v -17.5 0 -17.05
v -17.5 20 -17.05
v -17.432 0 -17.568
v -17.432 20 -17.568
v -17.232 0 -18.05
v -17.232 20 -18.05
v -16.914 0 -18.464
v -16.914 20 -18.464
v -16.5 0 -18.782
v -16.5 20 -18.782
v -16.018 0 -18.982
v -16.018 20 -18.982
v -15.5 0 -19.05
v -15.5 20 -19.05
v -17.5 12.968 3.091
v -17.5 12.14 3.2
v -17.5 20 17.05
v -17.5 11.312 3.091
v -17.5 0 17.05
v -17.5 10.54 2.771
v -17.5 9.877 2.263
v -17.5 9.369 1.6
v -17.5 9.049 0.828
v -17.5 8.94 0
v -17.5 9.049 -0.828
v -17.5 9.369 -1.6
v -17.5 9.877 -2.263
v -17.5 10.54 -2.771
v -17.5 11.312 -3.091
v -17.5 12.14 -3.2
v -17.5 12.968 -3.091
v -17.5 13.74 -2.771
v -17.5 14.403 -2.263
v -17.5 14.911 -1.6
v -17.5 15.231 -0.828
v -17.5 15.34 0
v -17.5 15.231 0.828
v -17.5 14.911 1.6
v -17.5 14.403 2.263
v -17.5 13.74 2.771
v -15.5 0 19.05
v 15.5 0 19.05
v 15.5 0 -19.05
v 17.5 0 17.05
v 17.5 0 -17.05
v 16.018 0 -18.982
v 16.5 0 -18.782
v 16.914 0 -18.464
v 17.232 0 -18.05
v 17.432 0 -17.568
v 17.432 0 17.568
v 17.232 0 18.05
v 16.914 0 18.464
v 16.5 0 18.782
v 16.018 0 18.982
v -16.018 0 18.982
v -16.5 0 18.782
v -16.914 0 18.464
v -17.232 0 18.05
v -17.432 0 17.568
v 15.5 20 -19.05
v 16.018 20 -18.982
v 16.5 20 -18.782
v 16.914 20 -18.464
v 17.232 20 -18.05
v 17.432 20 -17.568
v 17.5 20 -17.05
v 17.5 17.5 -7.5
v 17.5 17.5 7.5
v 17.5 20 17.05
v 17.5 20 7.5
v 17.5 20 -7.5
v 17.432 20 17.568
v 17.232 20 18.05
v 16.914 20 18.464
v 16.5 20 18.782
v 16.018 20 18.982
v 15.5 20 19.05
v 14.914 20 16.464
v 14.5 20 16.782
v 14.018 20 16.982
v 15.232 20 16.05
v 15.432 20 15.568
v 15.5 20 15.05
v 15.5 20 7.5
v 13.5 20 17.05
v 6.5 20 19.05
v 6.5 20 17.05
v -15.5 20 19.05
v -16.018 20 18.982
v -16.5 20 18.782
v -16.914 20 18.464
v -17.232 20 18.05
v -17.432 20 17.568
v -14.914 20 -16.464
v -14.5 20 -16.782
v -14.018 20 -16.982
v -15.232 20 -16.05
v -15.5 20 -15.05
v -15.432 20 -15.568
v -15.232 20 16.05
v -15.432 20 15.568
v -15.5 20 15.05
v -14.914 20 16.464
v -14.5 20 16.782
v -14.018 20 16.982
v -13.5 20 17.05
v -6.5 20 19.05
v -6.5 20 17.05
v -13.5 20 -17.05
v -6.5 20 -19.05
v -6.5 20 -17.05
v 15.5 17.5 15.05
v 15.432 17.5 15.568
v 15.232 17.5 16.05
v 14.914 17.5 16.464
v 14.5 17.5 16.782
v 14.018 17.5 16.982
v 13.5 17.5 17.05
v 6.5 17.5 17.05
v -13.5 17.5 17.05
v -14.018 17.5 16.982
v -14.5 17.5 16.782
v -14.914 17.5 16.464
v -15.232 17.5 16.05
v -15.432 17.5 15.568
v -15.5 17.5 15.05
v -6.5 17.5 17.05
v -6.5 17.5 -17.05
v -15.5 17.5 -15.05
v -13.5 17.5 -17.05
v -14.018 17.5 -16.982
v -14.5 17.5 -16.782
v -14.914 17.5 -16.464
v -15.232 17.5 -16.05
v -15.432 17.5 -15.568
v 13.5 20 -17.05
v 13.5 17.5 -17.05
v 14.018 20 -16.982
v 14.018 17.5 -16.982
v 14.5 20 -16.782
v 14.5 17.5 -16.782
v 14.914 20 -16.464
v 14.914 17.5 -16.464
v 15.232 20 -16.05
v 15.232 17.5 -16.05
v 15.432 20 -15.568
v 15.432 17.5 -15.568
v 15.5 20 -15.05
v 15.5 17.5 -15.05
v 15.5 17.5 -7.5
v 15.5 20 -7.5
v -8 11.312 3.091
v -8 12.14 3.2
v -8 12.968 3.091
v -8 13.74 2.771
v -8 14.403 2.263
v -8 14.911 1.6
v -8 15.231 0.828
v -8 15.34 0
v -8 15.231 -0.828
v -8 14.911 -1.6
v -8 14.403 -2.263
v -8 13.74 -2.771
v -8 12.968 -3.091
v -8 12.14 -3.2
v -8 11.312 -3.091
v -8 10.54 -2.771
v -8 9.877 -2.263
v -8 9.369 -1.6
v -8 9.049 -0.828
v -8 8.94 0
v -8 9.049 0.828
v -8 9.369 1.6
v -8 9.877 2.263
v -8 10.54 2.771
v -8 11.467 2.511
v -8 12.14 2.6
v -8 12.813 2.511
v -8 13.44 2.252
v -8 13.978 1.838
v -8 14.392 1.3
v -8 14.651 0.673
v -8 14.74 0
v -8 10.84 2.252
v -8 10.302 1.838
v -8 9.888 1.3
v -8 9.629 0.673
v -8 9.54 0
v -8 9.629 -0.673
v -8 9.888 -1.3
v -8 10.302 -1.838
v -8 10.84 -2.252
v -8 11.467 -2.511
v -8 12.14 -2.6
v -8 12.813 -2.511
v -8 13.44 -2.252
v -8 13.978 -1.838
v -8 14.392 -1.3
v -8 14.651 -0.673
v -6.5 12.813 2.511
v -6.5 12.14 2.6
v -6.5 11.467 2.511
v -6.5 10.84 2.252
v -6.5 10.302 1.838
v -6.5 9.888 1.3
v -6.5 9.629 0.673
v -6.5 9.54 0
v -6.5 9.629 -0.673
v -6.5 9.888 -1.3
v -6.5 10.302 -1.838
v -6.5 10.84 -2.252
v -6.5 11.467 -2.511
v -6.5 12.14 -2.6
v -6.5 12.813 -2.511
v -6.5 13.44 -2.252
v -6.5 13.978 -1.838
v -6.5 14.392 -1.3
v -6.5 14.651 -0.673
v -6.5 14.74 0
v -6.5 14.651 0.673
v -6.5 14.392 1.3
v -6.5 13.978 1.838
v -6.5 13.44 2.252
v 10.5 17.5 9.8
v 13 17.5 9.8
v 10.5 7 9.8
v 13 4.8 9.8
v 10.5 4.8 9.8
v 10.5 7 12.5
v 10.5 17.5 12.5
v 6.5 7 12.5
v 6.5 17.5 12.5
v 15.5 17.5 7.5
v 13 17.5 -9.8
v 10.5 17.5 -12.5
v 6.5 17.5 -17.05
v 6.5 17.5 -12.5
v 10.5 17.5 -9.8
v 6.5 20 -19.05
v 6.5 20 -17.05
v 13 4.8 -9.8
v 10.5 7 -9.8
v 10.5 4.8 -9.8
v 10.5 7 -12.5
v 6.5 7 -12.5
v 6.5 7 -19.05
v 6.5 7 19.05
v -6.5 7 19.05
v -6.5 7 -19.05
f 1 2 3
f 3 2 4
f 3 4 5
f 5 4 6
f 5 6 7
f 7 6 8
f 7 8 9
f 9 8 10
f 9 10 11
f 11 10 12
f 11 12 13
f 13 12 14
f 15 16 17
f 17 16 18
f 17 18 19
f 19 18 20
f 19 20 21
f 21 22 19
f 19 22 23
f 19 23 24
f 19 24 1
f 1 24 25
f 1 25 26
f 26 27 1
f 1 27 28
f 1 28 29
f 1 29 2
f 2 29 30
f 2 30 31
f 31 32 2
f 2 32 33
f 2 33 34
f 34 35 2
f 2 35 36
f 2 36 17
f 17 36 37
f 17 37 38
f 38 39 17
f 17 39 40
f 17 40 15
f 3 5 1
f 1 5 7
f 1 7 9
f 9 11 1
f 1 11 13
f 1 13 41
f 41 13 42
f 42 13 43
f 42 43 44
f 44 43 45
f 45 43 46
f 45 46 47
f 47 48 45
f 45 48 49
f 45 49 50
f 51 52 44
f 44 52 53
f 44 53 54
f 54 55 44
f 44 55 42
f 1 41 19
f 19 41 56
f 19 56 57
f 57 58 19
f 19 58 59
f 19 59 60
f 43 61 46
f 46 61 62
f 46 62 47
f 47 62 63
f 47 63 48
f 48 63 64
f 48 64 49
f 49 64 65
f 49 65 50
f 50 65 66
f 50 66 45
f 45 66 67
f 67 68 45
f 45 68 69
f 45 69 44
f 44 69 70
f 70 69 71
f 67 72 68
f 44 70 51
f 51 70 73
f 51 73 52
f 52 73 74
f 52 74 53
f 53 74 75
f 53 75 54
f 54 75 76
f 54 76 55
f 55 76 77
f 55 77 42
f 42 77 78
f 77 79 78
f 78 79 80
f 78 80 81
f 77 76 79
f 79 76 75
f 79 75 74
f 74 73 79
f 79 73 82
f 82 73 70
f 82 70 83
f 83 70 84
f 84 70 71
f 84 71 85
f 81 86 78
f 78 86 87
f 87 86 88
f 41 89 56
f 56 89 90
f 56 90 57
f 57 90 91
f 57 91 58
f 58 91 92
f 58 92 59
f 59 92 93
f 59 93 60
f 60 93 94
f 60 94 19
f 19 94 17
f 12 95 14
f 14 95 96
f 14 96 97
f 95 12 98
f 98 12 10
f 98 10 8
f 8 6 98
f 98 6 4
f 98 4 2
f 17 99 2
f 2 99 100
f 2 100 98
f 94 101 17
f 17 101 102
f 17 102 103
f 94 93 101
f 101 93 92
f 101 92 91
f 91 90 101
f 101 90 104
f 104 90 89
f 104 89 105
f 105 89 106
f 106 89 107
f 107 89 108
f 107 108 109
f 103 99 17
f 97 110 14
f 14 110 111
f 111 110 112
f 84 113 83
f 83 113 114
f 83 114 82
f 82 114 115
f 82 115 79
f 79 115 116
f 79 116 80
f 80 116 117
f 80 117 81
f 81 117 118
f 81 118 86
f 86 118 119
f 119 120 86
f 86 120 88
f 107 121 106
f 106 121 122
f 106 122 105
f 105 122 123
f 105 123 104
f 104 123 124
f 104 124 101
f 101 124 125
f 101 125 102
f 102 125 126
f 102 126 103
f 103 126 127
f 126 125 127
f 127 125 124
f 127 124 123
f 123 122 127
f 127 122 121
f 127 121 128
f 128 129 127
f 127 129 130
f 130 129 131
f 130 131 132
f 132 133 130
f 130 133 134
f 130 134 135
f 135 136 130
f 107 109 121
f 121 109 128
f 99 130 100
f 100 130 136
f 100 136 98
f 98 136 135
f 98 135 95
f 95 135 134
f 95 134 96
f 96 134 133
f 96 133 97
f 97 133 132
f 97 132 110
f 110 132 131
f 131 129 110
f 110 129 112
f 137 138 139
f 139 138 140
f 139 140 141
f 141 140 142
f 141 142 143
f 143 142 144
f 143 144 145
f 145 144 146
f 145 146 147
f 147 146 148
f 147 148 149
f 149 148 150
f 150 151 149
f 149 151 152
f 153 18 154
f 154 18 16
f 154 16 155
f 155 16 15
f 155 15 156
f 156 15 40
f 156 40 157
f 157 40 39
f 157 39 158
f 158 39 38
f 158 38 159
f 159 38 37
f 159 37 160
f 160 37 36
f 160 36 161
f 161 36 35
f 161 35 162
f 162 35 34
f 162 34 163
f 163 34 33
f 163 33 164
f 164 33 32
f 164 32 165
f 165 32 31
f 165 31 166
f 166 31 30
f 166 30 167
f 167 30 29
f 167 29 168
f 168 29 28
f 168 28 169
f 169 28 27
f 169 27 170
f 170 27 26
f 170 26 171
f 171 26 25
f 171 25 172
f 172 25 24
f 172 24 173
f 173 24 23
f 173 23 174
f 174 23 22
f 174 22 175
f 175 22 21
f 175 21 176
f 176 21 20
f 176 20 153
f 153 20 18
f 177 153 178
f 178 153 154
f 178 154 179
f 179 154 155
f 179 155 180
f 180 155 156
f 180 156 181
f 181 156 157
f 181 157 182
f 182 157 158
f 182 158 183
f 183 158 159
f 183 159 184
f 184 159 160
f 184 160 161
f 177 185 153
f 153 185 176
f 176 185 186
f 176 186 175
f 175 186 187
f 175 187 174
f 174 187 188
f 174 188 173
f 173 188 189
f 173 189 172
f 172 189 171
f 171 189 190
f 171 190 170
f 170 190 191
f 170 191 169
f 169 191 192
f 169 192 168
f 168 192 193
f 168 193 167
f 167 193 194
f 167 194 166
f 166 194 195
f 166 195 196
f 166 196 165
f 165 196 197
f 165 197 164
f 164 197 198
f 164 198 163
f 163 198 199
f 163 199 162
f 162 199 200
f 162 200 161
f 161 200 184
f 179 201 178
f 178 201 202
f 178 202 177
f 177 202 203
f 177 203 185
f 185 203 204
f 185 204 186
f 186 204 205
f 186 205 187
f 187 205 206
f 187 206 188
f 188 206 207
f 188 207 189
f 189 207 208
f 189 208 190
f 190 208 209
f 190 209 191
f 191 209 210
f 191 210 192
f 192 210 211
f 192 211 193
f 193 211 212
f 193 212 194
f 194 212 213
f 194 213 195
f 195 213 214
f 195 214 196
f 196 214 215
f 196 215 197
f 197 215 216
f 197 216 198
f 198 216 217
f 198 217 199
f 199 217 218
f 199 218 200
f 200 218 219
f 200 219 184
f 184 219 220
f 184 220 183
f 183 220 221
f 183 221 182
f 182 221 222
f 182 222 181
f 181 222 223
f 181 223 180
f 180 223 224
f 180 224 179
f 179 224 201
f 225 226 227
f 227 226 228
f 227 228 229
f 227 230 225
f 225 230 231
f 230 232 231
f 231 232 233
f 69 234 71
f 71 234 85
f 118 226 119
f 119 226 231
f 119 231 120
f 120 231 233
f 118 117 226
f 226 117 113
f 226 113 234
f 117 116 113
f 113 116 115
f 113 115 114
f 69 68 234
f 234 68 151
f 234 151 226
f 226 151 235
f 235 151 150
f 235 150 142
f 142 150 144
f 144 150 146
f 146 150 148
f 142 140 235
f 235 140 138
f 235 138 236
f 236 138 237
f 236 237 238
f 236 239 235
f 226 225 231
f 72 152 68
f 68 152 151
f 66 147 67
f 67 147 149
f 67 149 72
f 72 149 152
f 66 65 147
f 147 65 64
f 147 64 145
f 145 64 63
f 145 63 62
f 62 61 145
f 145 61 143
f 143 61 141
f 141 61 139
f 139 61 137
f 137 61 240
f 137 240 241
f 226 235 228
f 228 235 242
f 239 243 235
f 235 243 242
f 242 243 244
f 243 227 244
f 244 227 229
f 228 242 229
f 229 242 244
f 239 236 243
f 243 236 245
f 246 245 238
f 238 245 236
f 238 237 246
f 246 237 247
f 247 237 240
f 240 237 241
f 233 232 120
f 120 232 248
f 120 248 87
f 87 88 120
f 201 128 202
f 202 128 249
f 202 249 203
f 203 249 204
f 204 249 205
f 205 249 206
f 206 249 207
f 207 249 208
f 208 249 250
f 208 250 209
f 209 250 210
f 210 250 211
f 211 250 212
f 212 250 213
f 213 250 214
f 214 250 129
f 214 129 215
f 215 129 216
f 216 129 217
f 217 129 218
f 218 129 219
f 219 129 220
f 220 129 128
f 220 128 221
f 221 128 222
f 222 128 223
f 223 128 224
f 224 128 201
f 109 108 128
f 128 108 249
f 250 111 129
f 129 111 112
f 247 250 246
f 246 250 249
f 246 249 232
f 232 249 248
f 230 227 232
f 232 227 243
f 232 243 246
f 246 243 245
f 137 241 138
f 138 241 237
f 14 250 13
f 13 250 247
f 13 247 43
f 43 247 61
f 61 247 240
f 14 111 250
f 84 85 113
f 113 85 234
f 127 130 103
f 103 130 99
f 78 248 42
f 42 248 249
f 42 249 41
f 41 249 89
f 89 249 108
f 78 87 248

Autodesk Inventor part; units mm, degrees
ref_plane "YZ Plane" through (0, 0, 0) normal (1, 0, 0) x (0, 1, 0)
sketch "Sketch1" plane through (0, 0, 0) normal (0, 1, 0) x (-1, 0, 0)
  line L0 (17.5, 19.05) -> (-17.5, 19.05)
  line L1 (-17.5, 19.05) -> (-17.5, -19.05)
  line L2 (-17.5, -19.05) -> (17.5, -19.05)
  line L3 (17.5, -19.05) -> (17.5, 19.05)
  line L4 (17.5, 19.05) -> (-17.5, -19.05) construction
  line L5 (-17.5, 19.05) -> (17.5, -19.05) construction
  point P0 (0, 0)
  dimension "d0" = 38.1
  dimension "d1" = 35
extrude "Extrusion1" add sketch "Sketch1" along normal blind 20
shell "Shell1" thickness 2 removed faces 1 at (5.8333, 20, -6.35)
sketch "Sketch2" plane through (-15.5, 2, 17.05) normal (0, 1, 0) x (1, 0, 0)
  line L0 (31, 34.1) -> (0, 34.1) projected
  line L1 (31, 0) -> (31, 34.1) projected
  line L2 (0, 34.1) -> (31, 34.1)
  line L3 (31, 34.1) -> (31, 0)
  line L4 (31, 0) -> (0, 0)
  line L5 (0, 0) -> (0, 34.1)
  point P0 (15.5, 17.05)
extrude "Extrusion2" add sketch "Sketch2" along normal blind 15.5
sketch "Sketch3" plane through (0, 20, 0) normal (0, 1, 0) x (1, 0, 0)
  line L0 (17.5, 19.05) -> (-17.5, 19.05) projected
  line L1 (-17.5, -19.05) -> (17.5, -19.05) projected
  line L2 (0, 19.05) -> (-6.5, 19.05)
  line L3 (-6.5, 19.05) -> (-6.5, -19.05)
  line L4 (-6.5, -19.05) -> (0, -19.05)
  line L5 (0, -19.05) -> (0, 19.05)
  point P0 (0, 0)
  dimension "d7" = 6.5
extrude "Extrusion3" cut sketch "Sketch3" against normal blind 13
ref_plane "Work Plane1" through (0, 20, -19.05) normal (-1, 0, 0) x (0, 0, 1)
mirror "Mirror1" about plane through (0, 20, -19.05) normal (-1, 0, 0) of "Extrusion3"
sketch "Sketch4" plane through (-15.5, 17.5, 17.05) normal (0, 1, 0) x (1, 0, 0)
  line L0 (22, -2) -> (22, 36.1) projected
  line L1 (22, 17.05) -> (26, 17.05)
  line L2 (26, 17.05) -> (26, 29.55)
  line L3 (26, 29.55) -> (22, 29.55)
  line L4 (22, 29.55) -> (22, 17.05)
  point P0 (15.5, 17.05)
  dimension "d11" = 4
  dimension "d12" = 12.5
extrude "Extrusion4" cut sketch "Sketch4" against normal up to surface (10.5 mm away)
sketch "Sketch5" plane through (-15.5, 17.5, 17.05) normal (0, 1, 0) x (1, 0, 0)
  line L0 (26, 17.05) -> (26, 29.55) projected
  line L1 (26, 17.05) -> (28.5, 17.05)
  line L2 (28.5, 17.05) -> (28.5, 26.85)
  line L3 (28.5, 26.85) -> (26, 26.85)
  line L4 (26, 26.85) -> (26, 17.05)
  point P0 (15.5, 17.05)
  dimension "d15" = 9.8
  dimension "d16" = 2.5
extrude "Extrusion5" cut sketch "Sketch5" against normal blind 12.7
sketch "Sketch6" plane through (0, 20, 0) normal (0, 1, 0) x (1, 0, 0)
  line L0 (15.5, 17.05) -> (15.5, -17.05) projected
  line L1 (15.5, 0) -> (19.9746, 0)
  line L2 (19.9746, 0) -> (19.9746, 7.5)
  line L3 (19.9746, 7.5) -> (15.5, 7.5)
  line L4 (15.5, 7.5) -> (15.5, 0)
  point P0 (0, 0)
  dimension "d19" = 7.5
extrude "Extrusion6" cut sketch "Sketch6" against normal up to surface (2.5 mm away)
ref_plane "Work Plane2" through (6.5, 7, 0) normal (0, 0, -1) x (-1, 0, 0)
mirror "Mirror2" about plane through (6.5, 7, 0) normal (0, 0, -1) of "Extrusion4", "Extrusion5", "Extrusion6"
sketch "Sketch7" plane through (-17.5, 0, -19.05) normal (-1, 0, 0) x (0, 0, 1)
  circle A0 centre (19.05, 12.14) radius 2.6
  line L0 (0, 20) -> (38.1, 20) projected
  point P0 (19.05, 0)
  dimension "d23" = 5.2
  dimension "d24" = 7.86
extrude "Extrusion7" cut sketch "Sketch7" against normal up to surface (11 mm away)
sketch "Sketch8" plane through (-17.5, 0, -19.05) normal (-1, 0, 0) x (0, 0, 1)
  circle A0 centre (19.05, 12.14) radius 2.6 projected
  circle A1 centre (19.05, 12.14) radius 3.2
  point P0 (19.05, 0)
  dimension "d27" = 6.4
extrude "Extrusion8" cut sketch "Sketch8" against normal blind 9.5
fillet "Fillet1" radius 2 8 edges at (15.5, 18.75, -17.05) (-15.5, 18.75, -17.05) (-15.5, 18.75, 17.05) (15.5, 18.75, 17.05) (-17.5, 10, 19.05) (17.5, 10, 19.05) (17.5, 10, -19.05) (-17.5, 10, -19.05)
properties part number "Enclosure_Bottom V1D6"
